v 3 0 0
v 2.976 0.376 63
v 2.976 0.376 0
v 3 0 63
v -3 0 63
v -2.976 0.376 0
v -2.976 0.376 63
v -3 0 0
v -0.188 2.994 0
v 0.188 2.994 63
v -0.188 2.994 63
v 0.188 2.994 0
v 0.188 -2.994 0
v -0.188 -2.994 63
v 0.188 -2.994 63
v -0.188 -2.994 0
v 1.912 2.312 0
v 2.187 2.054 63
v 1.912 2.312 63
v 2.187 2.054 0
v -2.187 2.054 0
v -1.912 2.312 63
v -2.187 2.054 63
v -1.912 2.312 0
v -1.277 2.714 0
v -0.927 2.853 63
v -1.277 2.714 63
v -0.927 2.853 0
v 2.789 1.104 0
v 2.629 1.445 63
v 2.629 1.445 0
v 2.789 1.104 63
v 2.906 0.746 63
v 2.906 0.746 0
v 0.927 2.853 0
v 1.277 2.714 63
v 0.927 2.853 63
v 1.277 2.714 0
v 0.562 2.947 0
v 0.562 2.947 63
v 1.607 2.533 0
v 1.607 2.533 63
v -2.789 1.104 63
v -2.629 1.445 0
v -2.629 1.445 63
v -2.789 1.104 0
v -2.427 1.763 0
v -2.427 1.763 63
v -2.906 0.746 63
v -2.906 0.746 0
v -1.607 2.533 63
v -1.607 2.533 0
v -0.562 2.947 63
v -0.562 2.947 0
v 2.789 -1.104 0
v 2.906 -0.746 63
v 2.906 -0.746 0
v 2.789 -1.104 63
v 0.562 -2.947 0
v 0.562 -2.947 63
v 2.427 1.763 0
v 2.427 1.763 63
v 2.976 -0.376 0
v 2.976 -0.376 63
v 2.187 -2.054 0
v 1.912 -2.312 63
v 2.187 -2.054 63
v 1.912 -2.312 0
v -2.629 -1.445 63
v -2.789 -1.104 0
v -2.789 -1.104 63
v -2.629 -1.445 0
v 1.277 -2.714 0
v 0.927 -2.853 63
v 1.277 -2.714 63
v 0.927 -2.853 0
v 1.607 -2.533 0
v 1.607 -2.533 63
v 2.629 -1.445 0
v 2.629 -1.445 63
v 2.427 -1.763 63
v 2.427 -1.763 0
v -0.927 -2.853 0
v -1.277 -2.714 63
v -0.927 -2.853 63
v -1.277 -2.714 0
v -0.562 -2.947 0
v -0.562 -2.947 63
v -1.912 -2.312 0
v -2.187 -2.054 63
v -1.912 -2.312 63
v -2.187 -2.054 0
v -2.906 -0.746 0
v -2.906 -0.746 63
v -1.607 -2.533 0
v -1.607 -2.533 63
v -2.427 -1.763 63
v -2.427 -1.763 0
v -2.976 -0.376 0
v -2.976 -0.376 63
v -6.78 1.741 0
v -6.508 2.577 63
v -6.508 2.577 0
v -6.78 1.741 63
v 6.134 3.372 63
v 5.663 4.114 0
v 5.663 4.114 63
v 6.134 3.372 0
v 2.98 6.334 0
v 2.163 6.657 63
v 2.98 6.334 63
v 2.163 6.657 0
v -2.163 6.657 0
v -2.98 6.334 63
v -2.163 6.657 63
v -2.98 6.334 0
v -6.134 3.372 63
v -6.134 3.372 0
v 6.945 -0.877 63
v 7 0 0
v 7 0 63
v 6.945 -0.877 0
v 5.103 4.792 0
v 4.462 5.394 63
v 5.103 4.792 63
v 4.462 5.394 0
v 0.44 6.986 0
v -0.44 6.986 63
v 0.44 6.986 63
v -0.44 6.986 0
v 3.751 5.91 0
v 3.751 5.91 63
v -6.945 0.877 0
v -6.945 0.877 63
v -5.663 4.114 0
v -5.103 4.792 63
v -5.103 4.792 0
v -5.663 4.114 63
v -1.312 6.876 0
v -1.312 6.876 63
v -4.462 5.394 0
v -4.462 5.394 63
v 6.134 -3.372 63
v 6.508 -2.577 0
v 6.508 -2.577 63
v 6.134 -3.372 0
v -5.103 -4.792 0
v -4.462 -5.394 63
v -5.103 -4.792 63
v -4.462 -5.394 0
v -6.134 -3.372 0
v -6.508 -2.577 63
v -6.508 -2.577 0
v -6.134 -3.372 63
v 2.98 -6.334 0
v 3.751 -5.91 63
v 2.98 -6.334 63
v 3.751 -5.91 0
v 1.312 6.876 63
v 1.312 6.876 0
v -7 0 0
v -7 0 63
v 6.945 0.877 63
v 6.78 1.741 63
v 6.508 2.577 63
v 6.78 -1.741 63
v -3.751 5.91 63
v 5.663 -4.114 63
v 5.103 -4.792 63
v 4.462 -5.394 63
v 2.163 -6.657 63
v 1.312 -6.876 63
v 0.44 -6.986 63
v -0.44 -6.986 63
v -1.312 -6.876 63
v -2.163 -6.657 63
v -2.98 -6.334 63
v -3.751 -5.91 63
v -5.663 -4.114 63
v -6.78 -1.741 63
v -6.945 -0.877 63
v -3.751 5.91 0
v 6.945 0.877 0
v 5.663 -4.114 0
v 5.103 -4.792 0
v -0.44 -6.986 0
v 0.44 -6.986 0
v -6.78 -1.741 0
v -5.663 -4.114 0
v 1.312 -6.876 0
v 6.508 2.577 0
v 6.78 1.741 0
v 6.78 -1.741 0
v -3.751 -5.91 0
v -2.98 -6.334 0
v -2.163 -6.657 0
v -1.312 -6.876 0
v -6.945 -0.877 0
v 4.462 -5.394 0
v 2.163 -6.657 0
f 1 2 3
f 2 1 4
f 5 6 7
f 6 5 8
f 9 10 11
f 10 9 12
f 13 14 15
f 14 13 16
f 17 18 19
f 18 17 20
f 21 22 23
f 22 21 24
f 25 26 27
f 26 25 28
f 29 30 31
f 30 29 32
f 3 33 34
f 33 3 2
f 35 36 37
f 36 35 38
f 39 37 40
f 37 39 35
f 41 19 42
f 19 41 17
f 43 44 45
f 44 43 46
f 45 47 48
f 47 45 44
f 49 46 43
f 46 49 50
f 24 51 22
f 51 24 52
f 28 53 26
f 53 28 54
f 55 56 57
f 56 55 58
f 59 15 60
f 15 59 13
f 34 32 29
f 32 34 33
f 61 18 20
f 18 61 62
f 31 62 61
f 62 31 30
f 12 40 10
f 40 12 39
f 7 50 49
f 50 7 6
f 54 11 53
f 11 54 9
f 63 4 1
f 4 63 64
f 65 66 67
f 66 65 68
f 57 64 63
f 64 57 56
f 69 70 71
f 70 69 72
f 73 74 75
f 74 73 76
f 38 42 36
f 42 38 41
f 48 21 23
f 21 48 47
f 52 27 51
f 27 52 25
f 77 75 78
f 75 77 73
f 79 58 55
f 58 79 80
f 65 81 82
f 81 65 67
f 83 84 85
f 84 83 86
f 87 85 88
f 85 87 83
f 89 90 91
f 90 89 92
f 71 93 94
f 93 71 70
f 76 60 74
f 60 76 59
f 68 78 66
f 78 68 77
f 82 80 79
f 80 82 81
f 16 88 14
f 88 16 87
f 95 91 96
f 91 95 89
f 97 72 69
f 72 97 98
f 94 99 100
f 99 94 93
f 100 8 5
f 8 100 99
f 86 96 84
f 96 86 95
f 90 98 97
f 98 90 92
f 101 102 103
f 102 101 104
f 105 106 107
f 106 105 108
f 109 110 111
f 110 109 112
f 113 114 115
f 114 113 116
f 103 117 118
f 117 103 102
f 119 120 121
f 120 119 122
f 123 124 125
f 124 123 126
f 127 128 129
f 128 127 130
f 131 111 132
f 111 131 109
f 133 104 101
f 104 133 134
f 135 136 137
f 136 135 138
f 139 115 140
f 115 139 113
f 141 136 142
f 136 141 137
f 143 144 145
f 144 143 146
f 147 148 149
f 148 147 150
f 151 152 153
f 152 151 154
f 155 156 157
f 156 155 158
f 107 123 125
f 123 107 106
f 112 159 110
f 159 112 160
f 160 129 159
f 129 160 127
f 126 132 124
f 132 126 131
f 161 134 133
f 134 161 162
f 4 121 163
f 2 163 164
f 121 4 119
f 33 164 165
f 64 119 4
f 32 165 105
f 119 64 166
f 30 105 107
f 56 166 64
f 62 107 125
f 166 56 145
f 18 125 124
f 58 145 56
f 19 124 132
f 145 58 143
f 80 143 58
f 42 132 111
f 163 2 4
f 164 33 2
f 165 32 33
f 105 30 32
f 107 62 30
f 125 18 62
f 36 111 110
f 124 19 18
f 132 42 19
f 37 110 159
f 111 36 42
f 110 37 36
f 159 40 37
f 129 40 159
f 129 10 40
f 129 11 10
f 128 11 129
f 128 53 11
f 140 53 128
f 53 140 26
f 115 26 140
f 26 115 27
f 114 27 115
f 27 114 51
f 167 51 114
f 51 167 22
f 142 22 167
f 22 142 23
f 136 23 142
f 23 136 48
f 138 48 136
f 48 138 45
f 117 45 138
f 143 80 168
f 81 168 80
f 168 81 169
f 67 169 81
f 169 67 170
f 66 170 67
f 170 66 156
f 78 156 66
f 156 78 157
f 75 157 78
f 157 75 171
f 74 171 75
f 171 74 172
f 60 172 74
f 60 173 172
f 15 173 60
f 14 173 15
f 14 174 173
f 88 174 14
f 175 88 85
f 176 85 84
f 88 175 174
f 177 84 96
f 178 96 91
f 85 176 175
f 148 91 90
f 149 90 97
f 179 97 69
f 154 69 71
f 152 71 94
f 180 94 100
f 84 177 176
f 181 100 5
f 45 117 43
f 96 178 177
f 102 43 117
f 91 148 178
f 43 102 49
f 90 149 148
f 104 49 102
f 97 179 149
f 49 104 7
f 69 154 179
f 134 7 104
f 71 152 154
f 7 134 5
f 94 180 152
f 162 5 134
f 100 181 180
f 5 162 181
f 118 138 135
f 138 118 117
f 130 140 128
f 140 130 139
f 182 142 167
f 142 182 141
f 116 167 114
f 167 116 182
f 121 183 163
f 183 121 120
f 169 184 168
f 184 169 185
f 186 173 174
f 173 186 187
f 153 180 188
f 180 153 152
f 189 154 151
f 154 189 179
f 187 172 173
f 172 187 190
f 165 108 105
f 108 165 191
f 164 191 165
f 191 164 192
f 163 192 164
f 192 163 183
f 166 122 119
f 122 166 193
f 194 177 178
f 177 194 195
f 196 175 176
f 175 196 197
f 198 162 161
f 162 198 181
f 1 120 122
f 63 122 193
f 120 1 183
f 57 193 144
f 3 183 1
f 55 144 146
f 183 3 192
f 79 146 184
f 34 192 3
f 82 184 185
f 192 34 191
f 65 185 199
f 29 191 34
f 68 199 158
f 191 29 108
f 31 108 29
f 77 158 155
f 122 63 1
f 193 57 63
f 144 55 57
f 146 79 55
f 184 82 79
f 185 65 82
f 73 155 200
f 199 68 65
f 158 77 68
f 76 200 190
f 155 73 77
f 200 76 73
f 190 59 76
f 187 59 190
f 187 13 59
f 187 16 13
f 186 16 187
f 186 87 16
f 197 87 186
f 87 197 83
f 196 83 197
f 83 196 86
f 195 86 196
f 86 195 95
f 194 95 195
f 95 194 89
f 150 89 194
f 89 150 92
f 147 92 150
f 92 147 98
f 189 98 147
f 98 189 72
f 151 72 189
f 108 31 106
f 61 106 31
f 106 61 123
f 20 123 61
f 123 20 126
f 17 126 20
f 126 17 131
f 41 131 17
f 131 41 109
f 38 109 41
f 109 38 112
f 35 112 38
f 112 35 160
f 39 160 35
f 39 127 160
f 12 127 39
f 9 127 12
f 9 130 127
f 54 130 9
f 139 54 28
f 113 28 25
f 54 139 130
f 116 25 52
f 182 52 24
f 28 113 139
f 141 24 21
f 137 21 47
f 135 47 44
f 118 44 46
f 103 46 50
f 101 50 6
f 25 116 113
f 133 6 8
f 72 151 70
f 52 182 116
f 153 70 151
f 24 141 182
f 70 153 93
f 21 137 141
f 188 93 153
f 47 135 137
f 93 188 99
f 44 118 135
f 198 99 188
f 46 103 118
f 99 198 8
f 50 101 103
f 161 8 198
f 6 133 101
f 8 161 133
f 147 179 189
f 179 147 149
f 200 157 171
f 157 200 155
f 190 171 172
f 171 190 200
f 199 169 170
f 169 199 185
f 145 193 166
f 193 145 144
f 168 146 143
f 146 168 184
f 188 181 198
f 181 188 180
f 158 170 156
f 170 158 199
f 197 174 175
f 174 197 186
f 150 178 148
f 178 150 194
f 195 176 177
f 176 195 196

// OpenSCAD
$fn = 50;


difference() {
	union() {
		*color(alpha = 1.0000000000, c = "gray") {
			translate(v = [0, 7, 0]) {
				linear_extrude(height = 1) {
					text(font = "Arial:style=Bold", halign = "center", size = 4.5000000000, text = "COMMENT plate main", valign = "center");
				}
			}
		}
		cylinder(h = 63, r = 7.0000000000);
	}
	union() {
		*color(alpha = 1.0000000000, c = "gray") {
			translate(v = [0, 7, 0]) {
				linear_extrude(height = 1) {
					text(font = "Arial:style=Bold", halign = "center", size = 4.5000000000, text = "COMMENT holes main", valign = "center");
				}
			}
		}
		translate(v = [0, 0, -100]) {
			cylinder(h = 200, r = 3.0000000000);
		}
		translate(v = [0, 0, -100]) {
			cylinder(h = 200, r = 1.5000000000);
		}
	}
}
